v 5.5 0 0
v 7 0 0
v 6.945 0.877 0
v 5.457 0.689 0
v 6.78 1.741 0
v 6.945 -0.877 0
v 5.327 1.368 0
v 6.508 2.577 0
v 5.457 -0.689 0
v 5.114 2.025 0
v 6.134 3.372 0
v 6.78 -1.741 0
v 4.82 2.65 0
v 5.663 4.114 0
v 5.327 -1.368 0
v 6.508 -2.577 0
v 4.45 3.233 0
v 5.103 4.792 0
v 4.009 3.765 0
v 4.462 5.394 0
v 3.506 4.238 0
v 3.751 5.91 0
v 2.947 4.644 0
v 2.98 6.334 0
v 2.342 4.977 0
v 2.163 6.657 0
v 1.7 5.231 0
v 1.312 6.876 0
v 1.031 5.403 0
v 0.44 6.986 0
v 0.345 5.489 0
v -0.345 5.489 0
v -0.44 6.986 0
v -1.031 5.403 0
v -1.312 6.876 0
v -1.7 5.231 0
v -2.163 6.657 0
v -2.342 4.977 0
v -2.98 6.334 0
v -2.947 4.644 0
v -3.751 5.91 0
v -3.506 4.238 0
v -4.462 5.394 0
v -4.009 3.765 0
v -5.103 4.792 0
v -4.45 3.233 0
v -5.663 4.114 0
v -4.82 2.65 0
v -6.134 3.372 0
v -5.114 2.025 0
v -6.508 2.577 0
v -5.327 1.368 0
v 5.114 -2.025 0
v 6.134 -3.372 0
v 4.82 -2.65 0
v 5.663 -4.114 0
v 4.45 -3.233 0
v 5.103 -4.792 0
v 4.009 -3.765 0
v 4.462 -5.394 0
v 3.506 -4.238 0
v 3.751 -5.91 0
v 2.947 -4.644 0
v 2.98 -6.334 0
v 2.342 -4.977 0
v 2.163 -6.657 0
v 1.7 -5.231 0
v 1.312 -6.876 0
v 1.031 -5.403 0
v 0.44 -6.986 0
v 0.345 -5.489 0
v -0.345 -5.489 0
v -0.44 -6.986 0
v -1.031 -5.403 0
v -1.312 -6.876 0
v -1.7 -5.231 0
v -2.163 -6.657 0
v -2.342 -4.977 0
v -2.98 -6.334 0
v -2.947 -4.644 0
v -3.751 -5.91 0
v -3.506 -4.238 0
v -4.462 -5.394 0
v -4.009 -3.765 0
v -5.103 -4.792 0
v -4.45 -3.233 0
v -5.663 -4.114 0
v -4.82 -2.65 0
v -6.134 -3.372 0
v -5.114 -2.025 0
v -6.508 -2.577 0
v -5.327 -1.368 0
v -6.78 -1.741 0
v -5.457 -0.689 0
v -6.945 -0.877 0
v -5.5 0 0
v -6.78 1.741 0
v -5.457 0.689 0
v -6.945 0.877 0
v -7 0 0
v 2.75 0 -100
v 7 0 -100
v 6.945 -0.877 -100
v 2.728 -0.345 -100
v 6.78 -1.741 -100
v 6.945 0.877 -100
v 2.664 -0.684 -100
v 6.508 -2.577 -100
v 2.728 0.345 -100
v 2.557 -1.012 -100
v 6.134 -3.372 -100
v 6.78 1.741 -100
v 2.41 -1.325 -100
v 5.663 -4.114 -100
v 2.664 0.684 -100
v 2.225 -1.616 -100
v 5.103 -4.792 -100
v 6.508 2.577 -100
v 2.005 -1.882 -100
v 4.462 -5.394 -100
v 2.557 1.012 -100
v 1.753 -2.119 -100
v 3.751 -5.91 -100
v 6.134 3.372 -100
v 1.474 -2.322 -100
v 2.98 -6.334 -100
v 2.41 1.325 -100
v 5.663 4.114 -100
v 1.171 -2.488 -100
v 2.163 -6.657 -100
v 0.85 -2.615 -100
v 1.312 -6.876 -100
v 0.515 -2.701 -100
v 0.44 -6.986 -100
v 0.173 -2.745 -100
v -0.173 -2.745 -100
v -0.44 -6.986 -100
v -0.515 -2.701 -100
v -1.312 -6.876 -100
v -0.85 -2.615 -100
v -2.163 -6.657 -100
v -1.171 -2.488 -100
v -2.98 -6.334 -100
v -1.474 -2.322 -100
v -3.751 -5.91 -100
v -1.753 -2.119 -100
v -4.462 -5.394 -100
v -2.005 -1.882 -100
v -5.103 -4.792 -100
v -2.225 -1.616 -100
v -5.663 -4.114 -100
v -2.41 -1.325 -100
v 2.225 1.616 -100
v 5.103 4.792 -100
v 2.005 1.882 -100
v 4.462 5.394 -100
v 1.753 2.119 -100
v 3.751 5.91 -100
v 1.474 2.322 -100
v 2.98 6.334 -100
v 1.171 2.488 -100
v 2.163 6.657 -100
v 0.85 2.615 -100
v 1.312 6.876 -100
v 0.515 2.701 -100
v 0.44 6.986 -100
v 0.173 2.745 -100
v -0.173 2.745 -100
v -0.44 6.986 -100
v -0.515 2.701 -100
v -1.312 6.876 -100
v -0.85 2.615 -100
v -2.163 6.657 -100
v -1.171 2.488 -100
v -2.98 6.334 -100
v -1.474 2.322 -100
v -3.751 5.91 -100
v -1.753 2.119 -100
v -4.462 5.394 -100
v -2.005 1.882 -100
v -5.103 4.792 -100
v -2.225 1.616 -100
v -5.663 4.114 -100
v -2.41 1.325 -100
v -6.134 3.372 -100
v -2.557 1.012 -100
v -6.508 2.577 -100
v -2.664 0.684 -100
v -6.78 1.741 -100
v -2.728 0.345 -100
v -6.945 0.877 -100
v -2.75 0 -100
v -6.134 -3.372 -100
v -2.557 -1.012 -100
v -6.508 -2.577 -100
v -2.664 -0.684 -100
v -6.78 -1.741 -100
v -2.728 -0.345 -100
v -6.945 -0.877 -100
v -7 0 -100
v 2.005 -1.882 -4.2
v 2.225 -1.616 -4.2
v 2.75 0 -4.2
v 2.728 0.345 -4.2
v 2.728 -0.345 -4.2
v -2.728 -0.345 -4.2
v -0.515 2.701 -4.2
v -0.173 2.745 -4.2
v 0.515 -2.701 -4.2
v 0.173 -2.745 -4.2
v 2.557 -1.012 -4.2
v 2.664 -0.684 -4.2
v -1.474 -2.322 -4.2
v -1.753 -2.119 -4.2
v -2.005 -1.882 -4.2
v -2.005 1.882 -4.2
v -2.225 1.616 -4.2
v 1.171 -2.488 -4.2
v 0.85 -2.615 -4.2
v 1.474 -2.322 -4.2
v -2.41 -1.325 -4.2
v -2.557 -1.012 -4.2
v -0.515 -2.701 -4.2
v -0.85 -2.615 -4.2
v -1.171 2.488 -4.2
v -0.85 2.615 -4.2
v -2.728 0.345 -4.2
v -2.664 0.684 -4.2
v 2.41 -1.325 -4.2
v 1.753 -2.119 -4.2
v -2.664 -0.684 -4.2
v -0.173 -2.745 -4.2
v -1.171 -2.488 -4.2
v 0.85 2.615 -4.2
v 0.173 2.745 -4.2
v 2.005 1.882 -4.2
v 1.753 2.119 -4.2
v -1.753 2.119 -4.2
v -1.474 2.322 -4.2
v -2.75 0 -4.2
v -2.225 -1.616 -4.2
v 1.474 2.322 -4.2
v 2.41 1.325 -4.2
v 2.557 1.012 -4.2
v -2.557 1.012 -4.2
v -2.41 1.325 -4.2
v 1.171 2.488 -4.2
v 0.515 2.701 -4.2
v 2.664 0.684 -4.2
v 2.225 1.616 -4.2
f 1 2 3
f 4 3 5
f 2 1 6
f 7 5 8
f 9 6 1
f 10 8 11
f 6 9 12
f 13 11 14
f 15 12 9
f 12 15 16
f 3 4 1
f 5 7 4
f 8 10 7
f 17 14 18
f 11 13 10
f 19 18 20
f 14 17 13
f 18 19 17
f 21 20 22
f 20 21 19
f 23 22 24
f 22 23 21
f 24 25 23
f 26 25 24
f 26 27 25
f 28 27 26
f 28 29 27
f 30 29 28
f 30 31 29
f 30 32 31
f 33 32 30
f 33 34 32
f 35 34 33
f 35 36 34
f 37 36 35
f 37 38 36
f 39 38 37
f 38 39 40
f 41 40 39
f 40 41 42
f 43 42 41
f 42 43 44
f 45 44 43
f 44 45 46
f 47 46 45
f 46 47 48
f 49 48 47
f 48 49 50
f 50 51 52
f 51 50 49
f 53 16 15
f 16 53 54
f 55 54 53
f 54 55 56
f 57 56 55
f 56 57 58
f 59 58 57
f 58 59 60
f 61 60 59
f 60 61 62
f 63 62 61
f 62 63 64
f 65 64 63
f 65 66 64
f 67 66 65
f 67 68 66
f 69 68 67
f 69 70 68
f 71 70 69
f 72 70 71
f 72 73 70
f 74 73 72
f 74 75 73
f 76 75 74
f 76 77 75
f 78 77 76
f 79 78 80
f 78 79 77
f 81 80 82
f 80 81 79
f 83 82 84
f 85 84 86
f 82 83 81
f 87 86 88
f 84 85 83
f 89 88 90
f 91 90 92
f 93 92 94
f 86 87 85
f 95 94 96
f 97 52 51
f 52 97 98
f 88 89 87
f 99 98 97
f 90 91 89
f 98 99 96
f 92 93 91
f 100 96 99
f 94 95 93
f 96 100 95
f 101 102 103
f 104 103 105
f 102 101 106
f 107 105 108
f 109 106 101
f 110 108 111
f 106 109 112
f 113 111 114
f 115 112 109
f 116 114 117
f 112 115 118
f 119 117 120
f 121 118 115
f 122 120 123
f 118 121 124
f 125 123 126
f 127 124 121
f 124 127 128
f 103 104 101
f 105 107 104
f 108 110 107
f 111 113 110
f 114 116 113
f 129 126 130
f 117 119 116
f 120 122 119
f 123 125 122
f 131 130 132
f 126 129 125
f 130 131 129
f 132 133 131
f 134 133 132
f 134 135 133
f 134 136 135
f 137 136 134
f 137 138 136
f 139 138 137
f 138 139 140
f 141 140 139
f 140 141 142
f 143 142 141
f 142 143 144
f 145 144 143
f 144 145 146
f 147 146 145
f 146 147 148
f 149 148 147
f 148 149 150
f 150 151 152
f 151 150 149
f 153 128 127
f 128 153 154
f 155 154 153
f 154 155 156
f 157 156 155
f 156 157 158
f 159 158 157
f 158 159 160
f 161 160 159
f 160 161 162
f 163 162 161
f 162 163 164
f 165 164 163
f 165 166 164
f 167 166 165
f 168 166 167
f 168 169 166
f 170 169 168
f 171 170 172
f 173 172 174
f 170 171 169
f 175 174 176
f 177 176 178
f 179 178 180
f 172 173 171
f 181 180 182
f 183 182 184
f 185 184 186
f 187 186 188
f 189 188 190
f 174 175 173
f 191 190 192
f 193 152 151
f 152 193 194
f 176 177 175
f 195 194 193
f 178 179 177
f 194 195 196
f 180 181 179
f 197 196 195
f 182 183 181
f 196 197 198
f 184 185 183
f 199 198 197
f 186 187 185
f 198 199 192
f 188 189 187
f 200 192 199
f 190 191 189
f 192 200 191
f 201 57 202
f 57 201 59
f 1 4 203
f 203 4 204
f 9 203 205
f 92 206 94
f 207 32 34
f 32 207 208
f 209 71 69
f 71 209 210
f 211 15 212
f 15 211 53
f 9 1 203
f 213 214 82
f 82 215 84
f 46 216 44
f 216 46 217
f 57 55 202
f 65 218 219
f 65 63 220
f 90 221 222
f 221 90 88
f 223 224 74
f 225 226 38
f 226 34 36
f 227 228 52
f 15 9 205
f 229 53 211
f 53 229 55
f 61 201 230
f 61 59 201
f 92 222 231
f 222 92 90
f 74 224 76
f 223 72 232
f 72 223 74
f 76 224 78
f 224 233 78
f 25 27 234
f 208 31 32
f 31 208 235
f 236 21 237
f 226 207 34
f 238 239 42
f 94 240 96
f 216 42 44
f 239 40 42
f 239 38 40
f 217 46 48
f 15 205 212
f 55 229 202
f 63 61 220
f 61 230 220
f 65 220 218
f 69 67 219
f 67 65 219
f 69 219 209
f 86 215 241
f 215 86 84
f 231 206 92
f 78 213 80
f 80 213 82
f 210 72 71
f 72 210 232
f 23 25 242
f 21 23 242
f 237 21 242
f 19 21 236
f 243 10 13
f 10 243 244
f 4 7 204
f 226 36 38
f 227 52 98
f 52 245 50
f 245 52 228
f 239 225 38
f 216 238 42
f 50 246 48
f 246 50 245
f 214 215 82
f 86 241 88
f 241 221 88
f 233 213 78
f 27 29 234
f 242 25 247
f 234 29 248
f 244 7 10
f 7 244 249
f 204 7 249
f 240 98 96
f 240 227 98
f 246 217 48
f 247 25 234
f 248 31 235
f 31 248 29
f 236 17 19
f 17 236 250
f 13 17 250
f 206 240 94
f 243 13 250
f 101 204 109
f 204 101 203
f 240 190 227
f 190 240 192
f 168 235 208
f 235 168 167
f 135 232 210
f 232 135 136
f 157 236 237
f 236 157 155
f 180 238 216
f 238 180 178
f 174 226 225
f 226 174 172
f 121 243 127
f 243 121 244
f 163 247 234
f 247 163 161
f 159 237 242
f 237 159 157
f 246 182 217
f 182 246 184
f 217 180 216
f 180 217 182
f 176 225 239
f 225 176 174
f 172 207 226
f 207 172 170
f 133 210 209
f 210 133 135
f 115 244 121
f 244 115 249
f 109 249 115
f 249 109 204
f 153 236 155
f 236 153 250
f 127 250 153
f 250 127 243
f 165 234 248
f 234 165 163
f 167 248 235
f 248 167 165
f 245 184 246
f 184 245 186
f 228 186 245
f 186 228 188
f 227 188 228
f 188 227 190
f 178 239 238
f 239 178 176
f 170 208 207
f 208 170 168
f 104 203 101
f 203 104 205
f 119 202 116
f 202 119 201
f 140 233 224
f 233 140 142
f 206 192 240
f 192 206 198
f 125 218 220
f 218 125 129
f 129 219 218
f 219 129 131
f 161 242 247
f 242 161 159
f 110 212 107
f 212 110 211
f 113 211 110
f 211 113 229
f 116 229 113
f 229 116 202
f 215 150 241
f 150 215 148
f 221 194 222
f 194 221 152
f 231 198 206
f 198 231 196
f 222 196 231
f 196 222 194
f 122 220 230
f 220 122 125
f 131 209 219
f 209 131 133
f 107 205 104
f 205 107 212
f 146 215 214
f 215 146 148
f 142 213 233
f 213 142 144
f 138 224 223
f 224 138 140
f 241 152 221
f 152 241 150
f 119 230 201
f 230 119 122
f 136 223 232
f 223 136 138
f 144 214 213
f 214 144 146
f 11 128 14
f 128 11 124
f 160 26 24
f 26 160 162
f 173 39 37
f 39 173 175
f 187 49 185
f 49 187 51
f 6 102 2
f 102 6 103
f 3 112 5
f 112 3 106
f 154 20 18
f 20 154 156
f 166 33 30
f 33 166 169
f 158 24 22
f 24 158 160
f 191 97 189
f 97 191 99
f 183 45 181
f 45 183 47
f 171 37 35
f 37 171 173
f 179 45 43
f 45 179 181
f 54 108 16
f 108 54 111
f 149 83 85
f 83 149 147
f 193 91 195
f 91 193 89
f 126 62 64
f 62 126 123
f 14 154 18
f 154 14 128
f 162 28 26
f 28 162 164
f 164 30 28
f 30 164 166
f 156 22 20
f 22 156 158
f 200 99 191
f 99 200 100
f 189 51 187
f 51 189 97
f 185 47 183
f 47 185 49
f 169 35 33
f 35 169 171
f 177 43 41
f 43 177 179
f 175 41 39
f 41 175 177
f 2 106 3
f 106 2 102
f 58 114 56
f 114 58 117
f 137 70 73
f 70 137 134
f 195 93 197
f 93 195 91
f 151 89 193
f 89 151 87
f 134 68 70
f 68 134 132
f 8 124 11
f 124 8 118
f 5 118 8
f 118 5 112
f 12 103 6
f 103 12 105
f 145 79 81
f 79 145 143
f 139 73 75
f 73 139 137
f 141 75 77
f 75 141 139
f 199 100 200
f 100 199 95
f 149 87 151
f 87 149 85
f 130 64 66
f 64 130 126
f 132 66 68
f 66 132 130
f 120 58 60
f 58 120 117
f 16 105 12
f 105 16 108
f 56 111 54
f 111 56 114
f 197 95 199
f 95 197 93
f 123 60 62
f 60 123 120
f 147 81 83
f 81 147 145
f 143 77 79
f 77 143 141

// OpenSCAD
$fn = 50;


difference() {
	union() {
		translate(v = [0, 0, -100.0000000000]) {
			cylinder(h = 100, r = 7.0000000000);
		}
		cylinder(h = 0, r = 17.0000000000);
	}
	union() {
		translate(v = [0, 0, 0]) {
			rotate(a = [0, 0, 0]) {
				difference() {
					union() {
						#translate(v = [0, 0, -100.0000000000]) {
							cylinder(h = 100, r = 2.2500000000);
						}
						#translate(v = [0, 0, -4.2000000000]) {
							cylinder(h = 4.2000000000, r1 = 2.7500000000, r2 = 5.5000000000);
						}
						#translate(v = [0, 0, -100.0000000000]) {
							cylinder(h = 100, r = 2.7500000000);
						}
						#translate(v = [0, 0, -100.0000000000]) {
							cylinder(h = 100, r = 2.2500000000);
						}
					}
					union();
				}
			}
		}
	}
}
